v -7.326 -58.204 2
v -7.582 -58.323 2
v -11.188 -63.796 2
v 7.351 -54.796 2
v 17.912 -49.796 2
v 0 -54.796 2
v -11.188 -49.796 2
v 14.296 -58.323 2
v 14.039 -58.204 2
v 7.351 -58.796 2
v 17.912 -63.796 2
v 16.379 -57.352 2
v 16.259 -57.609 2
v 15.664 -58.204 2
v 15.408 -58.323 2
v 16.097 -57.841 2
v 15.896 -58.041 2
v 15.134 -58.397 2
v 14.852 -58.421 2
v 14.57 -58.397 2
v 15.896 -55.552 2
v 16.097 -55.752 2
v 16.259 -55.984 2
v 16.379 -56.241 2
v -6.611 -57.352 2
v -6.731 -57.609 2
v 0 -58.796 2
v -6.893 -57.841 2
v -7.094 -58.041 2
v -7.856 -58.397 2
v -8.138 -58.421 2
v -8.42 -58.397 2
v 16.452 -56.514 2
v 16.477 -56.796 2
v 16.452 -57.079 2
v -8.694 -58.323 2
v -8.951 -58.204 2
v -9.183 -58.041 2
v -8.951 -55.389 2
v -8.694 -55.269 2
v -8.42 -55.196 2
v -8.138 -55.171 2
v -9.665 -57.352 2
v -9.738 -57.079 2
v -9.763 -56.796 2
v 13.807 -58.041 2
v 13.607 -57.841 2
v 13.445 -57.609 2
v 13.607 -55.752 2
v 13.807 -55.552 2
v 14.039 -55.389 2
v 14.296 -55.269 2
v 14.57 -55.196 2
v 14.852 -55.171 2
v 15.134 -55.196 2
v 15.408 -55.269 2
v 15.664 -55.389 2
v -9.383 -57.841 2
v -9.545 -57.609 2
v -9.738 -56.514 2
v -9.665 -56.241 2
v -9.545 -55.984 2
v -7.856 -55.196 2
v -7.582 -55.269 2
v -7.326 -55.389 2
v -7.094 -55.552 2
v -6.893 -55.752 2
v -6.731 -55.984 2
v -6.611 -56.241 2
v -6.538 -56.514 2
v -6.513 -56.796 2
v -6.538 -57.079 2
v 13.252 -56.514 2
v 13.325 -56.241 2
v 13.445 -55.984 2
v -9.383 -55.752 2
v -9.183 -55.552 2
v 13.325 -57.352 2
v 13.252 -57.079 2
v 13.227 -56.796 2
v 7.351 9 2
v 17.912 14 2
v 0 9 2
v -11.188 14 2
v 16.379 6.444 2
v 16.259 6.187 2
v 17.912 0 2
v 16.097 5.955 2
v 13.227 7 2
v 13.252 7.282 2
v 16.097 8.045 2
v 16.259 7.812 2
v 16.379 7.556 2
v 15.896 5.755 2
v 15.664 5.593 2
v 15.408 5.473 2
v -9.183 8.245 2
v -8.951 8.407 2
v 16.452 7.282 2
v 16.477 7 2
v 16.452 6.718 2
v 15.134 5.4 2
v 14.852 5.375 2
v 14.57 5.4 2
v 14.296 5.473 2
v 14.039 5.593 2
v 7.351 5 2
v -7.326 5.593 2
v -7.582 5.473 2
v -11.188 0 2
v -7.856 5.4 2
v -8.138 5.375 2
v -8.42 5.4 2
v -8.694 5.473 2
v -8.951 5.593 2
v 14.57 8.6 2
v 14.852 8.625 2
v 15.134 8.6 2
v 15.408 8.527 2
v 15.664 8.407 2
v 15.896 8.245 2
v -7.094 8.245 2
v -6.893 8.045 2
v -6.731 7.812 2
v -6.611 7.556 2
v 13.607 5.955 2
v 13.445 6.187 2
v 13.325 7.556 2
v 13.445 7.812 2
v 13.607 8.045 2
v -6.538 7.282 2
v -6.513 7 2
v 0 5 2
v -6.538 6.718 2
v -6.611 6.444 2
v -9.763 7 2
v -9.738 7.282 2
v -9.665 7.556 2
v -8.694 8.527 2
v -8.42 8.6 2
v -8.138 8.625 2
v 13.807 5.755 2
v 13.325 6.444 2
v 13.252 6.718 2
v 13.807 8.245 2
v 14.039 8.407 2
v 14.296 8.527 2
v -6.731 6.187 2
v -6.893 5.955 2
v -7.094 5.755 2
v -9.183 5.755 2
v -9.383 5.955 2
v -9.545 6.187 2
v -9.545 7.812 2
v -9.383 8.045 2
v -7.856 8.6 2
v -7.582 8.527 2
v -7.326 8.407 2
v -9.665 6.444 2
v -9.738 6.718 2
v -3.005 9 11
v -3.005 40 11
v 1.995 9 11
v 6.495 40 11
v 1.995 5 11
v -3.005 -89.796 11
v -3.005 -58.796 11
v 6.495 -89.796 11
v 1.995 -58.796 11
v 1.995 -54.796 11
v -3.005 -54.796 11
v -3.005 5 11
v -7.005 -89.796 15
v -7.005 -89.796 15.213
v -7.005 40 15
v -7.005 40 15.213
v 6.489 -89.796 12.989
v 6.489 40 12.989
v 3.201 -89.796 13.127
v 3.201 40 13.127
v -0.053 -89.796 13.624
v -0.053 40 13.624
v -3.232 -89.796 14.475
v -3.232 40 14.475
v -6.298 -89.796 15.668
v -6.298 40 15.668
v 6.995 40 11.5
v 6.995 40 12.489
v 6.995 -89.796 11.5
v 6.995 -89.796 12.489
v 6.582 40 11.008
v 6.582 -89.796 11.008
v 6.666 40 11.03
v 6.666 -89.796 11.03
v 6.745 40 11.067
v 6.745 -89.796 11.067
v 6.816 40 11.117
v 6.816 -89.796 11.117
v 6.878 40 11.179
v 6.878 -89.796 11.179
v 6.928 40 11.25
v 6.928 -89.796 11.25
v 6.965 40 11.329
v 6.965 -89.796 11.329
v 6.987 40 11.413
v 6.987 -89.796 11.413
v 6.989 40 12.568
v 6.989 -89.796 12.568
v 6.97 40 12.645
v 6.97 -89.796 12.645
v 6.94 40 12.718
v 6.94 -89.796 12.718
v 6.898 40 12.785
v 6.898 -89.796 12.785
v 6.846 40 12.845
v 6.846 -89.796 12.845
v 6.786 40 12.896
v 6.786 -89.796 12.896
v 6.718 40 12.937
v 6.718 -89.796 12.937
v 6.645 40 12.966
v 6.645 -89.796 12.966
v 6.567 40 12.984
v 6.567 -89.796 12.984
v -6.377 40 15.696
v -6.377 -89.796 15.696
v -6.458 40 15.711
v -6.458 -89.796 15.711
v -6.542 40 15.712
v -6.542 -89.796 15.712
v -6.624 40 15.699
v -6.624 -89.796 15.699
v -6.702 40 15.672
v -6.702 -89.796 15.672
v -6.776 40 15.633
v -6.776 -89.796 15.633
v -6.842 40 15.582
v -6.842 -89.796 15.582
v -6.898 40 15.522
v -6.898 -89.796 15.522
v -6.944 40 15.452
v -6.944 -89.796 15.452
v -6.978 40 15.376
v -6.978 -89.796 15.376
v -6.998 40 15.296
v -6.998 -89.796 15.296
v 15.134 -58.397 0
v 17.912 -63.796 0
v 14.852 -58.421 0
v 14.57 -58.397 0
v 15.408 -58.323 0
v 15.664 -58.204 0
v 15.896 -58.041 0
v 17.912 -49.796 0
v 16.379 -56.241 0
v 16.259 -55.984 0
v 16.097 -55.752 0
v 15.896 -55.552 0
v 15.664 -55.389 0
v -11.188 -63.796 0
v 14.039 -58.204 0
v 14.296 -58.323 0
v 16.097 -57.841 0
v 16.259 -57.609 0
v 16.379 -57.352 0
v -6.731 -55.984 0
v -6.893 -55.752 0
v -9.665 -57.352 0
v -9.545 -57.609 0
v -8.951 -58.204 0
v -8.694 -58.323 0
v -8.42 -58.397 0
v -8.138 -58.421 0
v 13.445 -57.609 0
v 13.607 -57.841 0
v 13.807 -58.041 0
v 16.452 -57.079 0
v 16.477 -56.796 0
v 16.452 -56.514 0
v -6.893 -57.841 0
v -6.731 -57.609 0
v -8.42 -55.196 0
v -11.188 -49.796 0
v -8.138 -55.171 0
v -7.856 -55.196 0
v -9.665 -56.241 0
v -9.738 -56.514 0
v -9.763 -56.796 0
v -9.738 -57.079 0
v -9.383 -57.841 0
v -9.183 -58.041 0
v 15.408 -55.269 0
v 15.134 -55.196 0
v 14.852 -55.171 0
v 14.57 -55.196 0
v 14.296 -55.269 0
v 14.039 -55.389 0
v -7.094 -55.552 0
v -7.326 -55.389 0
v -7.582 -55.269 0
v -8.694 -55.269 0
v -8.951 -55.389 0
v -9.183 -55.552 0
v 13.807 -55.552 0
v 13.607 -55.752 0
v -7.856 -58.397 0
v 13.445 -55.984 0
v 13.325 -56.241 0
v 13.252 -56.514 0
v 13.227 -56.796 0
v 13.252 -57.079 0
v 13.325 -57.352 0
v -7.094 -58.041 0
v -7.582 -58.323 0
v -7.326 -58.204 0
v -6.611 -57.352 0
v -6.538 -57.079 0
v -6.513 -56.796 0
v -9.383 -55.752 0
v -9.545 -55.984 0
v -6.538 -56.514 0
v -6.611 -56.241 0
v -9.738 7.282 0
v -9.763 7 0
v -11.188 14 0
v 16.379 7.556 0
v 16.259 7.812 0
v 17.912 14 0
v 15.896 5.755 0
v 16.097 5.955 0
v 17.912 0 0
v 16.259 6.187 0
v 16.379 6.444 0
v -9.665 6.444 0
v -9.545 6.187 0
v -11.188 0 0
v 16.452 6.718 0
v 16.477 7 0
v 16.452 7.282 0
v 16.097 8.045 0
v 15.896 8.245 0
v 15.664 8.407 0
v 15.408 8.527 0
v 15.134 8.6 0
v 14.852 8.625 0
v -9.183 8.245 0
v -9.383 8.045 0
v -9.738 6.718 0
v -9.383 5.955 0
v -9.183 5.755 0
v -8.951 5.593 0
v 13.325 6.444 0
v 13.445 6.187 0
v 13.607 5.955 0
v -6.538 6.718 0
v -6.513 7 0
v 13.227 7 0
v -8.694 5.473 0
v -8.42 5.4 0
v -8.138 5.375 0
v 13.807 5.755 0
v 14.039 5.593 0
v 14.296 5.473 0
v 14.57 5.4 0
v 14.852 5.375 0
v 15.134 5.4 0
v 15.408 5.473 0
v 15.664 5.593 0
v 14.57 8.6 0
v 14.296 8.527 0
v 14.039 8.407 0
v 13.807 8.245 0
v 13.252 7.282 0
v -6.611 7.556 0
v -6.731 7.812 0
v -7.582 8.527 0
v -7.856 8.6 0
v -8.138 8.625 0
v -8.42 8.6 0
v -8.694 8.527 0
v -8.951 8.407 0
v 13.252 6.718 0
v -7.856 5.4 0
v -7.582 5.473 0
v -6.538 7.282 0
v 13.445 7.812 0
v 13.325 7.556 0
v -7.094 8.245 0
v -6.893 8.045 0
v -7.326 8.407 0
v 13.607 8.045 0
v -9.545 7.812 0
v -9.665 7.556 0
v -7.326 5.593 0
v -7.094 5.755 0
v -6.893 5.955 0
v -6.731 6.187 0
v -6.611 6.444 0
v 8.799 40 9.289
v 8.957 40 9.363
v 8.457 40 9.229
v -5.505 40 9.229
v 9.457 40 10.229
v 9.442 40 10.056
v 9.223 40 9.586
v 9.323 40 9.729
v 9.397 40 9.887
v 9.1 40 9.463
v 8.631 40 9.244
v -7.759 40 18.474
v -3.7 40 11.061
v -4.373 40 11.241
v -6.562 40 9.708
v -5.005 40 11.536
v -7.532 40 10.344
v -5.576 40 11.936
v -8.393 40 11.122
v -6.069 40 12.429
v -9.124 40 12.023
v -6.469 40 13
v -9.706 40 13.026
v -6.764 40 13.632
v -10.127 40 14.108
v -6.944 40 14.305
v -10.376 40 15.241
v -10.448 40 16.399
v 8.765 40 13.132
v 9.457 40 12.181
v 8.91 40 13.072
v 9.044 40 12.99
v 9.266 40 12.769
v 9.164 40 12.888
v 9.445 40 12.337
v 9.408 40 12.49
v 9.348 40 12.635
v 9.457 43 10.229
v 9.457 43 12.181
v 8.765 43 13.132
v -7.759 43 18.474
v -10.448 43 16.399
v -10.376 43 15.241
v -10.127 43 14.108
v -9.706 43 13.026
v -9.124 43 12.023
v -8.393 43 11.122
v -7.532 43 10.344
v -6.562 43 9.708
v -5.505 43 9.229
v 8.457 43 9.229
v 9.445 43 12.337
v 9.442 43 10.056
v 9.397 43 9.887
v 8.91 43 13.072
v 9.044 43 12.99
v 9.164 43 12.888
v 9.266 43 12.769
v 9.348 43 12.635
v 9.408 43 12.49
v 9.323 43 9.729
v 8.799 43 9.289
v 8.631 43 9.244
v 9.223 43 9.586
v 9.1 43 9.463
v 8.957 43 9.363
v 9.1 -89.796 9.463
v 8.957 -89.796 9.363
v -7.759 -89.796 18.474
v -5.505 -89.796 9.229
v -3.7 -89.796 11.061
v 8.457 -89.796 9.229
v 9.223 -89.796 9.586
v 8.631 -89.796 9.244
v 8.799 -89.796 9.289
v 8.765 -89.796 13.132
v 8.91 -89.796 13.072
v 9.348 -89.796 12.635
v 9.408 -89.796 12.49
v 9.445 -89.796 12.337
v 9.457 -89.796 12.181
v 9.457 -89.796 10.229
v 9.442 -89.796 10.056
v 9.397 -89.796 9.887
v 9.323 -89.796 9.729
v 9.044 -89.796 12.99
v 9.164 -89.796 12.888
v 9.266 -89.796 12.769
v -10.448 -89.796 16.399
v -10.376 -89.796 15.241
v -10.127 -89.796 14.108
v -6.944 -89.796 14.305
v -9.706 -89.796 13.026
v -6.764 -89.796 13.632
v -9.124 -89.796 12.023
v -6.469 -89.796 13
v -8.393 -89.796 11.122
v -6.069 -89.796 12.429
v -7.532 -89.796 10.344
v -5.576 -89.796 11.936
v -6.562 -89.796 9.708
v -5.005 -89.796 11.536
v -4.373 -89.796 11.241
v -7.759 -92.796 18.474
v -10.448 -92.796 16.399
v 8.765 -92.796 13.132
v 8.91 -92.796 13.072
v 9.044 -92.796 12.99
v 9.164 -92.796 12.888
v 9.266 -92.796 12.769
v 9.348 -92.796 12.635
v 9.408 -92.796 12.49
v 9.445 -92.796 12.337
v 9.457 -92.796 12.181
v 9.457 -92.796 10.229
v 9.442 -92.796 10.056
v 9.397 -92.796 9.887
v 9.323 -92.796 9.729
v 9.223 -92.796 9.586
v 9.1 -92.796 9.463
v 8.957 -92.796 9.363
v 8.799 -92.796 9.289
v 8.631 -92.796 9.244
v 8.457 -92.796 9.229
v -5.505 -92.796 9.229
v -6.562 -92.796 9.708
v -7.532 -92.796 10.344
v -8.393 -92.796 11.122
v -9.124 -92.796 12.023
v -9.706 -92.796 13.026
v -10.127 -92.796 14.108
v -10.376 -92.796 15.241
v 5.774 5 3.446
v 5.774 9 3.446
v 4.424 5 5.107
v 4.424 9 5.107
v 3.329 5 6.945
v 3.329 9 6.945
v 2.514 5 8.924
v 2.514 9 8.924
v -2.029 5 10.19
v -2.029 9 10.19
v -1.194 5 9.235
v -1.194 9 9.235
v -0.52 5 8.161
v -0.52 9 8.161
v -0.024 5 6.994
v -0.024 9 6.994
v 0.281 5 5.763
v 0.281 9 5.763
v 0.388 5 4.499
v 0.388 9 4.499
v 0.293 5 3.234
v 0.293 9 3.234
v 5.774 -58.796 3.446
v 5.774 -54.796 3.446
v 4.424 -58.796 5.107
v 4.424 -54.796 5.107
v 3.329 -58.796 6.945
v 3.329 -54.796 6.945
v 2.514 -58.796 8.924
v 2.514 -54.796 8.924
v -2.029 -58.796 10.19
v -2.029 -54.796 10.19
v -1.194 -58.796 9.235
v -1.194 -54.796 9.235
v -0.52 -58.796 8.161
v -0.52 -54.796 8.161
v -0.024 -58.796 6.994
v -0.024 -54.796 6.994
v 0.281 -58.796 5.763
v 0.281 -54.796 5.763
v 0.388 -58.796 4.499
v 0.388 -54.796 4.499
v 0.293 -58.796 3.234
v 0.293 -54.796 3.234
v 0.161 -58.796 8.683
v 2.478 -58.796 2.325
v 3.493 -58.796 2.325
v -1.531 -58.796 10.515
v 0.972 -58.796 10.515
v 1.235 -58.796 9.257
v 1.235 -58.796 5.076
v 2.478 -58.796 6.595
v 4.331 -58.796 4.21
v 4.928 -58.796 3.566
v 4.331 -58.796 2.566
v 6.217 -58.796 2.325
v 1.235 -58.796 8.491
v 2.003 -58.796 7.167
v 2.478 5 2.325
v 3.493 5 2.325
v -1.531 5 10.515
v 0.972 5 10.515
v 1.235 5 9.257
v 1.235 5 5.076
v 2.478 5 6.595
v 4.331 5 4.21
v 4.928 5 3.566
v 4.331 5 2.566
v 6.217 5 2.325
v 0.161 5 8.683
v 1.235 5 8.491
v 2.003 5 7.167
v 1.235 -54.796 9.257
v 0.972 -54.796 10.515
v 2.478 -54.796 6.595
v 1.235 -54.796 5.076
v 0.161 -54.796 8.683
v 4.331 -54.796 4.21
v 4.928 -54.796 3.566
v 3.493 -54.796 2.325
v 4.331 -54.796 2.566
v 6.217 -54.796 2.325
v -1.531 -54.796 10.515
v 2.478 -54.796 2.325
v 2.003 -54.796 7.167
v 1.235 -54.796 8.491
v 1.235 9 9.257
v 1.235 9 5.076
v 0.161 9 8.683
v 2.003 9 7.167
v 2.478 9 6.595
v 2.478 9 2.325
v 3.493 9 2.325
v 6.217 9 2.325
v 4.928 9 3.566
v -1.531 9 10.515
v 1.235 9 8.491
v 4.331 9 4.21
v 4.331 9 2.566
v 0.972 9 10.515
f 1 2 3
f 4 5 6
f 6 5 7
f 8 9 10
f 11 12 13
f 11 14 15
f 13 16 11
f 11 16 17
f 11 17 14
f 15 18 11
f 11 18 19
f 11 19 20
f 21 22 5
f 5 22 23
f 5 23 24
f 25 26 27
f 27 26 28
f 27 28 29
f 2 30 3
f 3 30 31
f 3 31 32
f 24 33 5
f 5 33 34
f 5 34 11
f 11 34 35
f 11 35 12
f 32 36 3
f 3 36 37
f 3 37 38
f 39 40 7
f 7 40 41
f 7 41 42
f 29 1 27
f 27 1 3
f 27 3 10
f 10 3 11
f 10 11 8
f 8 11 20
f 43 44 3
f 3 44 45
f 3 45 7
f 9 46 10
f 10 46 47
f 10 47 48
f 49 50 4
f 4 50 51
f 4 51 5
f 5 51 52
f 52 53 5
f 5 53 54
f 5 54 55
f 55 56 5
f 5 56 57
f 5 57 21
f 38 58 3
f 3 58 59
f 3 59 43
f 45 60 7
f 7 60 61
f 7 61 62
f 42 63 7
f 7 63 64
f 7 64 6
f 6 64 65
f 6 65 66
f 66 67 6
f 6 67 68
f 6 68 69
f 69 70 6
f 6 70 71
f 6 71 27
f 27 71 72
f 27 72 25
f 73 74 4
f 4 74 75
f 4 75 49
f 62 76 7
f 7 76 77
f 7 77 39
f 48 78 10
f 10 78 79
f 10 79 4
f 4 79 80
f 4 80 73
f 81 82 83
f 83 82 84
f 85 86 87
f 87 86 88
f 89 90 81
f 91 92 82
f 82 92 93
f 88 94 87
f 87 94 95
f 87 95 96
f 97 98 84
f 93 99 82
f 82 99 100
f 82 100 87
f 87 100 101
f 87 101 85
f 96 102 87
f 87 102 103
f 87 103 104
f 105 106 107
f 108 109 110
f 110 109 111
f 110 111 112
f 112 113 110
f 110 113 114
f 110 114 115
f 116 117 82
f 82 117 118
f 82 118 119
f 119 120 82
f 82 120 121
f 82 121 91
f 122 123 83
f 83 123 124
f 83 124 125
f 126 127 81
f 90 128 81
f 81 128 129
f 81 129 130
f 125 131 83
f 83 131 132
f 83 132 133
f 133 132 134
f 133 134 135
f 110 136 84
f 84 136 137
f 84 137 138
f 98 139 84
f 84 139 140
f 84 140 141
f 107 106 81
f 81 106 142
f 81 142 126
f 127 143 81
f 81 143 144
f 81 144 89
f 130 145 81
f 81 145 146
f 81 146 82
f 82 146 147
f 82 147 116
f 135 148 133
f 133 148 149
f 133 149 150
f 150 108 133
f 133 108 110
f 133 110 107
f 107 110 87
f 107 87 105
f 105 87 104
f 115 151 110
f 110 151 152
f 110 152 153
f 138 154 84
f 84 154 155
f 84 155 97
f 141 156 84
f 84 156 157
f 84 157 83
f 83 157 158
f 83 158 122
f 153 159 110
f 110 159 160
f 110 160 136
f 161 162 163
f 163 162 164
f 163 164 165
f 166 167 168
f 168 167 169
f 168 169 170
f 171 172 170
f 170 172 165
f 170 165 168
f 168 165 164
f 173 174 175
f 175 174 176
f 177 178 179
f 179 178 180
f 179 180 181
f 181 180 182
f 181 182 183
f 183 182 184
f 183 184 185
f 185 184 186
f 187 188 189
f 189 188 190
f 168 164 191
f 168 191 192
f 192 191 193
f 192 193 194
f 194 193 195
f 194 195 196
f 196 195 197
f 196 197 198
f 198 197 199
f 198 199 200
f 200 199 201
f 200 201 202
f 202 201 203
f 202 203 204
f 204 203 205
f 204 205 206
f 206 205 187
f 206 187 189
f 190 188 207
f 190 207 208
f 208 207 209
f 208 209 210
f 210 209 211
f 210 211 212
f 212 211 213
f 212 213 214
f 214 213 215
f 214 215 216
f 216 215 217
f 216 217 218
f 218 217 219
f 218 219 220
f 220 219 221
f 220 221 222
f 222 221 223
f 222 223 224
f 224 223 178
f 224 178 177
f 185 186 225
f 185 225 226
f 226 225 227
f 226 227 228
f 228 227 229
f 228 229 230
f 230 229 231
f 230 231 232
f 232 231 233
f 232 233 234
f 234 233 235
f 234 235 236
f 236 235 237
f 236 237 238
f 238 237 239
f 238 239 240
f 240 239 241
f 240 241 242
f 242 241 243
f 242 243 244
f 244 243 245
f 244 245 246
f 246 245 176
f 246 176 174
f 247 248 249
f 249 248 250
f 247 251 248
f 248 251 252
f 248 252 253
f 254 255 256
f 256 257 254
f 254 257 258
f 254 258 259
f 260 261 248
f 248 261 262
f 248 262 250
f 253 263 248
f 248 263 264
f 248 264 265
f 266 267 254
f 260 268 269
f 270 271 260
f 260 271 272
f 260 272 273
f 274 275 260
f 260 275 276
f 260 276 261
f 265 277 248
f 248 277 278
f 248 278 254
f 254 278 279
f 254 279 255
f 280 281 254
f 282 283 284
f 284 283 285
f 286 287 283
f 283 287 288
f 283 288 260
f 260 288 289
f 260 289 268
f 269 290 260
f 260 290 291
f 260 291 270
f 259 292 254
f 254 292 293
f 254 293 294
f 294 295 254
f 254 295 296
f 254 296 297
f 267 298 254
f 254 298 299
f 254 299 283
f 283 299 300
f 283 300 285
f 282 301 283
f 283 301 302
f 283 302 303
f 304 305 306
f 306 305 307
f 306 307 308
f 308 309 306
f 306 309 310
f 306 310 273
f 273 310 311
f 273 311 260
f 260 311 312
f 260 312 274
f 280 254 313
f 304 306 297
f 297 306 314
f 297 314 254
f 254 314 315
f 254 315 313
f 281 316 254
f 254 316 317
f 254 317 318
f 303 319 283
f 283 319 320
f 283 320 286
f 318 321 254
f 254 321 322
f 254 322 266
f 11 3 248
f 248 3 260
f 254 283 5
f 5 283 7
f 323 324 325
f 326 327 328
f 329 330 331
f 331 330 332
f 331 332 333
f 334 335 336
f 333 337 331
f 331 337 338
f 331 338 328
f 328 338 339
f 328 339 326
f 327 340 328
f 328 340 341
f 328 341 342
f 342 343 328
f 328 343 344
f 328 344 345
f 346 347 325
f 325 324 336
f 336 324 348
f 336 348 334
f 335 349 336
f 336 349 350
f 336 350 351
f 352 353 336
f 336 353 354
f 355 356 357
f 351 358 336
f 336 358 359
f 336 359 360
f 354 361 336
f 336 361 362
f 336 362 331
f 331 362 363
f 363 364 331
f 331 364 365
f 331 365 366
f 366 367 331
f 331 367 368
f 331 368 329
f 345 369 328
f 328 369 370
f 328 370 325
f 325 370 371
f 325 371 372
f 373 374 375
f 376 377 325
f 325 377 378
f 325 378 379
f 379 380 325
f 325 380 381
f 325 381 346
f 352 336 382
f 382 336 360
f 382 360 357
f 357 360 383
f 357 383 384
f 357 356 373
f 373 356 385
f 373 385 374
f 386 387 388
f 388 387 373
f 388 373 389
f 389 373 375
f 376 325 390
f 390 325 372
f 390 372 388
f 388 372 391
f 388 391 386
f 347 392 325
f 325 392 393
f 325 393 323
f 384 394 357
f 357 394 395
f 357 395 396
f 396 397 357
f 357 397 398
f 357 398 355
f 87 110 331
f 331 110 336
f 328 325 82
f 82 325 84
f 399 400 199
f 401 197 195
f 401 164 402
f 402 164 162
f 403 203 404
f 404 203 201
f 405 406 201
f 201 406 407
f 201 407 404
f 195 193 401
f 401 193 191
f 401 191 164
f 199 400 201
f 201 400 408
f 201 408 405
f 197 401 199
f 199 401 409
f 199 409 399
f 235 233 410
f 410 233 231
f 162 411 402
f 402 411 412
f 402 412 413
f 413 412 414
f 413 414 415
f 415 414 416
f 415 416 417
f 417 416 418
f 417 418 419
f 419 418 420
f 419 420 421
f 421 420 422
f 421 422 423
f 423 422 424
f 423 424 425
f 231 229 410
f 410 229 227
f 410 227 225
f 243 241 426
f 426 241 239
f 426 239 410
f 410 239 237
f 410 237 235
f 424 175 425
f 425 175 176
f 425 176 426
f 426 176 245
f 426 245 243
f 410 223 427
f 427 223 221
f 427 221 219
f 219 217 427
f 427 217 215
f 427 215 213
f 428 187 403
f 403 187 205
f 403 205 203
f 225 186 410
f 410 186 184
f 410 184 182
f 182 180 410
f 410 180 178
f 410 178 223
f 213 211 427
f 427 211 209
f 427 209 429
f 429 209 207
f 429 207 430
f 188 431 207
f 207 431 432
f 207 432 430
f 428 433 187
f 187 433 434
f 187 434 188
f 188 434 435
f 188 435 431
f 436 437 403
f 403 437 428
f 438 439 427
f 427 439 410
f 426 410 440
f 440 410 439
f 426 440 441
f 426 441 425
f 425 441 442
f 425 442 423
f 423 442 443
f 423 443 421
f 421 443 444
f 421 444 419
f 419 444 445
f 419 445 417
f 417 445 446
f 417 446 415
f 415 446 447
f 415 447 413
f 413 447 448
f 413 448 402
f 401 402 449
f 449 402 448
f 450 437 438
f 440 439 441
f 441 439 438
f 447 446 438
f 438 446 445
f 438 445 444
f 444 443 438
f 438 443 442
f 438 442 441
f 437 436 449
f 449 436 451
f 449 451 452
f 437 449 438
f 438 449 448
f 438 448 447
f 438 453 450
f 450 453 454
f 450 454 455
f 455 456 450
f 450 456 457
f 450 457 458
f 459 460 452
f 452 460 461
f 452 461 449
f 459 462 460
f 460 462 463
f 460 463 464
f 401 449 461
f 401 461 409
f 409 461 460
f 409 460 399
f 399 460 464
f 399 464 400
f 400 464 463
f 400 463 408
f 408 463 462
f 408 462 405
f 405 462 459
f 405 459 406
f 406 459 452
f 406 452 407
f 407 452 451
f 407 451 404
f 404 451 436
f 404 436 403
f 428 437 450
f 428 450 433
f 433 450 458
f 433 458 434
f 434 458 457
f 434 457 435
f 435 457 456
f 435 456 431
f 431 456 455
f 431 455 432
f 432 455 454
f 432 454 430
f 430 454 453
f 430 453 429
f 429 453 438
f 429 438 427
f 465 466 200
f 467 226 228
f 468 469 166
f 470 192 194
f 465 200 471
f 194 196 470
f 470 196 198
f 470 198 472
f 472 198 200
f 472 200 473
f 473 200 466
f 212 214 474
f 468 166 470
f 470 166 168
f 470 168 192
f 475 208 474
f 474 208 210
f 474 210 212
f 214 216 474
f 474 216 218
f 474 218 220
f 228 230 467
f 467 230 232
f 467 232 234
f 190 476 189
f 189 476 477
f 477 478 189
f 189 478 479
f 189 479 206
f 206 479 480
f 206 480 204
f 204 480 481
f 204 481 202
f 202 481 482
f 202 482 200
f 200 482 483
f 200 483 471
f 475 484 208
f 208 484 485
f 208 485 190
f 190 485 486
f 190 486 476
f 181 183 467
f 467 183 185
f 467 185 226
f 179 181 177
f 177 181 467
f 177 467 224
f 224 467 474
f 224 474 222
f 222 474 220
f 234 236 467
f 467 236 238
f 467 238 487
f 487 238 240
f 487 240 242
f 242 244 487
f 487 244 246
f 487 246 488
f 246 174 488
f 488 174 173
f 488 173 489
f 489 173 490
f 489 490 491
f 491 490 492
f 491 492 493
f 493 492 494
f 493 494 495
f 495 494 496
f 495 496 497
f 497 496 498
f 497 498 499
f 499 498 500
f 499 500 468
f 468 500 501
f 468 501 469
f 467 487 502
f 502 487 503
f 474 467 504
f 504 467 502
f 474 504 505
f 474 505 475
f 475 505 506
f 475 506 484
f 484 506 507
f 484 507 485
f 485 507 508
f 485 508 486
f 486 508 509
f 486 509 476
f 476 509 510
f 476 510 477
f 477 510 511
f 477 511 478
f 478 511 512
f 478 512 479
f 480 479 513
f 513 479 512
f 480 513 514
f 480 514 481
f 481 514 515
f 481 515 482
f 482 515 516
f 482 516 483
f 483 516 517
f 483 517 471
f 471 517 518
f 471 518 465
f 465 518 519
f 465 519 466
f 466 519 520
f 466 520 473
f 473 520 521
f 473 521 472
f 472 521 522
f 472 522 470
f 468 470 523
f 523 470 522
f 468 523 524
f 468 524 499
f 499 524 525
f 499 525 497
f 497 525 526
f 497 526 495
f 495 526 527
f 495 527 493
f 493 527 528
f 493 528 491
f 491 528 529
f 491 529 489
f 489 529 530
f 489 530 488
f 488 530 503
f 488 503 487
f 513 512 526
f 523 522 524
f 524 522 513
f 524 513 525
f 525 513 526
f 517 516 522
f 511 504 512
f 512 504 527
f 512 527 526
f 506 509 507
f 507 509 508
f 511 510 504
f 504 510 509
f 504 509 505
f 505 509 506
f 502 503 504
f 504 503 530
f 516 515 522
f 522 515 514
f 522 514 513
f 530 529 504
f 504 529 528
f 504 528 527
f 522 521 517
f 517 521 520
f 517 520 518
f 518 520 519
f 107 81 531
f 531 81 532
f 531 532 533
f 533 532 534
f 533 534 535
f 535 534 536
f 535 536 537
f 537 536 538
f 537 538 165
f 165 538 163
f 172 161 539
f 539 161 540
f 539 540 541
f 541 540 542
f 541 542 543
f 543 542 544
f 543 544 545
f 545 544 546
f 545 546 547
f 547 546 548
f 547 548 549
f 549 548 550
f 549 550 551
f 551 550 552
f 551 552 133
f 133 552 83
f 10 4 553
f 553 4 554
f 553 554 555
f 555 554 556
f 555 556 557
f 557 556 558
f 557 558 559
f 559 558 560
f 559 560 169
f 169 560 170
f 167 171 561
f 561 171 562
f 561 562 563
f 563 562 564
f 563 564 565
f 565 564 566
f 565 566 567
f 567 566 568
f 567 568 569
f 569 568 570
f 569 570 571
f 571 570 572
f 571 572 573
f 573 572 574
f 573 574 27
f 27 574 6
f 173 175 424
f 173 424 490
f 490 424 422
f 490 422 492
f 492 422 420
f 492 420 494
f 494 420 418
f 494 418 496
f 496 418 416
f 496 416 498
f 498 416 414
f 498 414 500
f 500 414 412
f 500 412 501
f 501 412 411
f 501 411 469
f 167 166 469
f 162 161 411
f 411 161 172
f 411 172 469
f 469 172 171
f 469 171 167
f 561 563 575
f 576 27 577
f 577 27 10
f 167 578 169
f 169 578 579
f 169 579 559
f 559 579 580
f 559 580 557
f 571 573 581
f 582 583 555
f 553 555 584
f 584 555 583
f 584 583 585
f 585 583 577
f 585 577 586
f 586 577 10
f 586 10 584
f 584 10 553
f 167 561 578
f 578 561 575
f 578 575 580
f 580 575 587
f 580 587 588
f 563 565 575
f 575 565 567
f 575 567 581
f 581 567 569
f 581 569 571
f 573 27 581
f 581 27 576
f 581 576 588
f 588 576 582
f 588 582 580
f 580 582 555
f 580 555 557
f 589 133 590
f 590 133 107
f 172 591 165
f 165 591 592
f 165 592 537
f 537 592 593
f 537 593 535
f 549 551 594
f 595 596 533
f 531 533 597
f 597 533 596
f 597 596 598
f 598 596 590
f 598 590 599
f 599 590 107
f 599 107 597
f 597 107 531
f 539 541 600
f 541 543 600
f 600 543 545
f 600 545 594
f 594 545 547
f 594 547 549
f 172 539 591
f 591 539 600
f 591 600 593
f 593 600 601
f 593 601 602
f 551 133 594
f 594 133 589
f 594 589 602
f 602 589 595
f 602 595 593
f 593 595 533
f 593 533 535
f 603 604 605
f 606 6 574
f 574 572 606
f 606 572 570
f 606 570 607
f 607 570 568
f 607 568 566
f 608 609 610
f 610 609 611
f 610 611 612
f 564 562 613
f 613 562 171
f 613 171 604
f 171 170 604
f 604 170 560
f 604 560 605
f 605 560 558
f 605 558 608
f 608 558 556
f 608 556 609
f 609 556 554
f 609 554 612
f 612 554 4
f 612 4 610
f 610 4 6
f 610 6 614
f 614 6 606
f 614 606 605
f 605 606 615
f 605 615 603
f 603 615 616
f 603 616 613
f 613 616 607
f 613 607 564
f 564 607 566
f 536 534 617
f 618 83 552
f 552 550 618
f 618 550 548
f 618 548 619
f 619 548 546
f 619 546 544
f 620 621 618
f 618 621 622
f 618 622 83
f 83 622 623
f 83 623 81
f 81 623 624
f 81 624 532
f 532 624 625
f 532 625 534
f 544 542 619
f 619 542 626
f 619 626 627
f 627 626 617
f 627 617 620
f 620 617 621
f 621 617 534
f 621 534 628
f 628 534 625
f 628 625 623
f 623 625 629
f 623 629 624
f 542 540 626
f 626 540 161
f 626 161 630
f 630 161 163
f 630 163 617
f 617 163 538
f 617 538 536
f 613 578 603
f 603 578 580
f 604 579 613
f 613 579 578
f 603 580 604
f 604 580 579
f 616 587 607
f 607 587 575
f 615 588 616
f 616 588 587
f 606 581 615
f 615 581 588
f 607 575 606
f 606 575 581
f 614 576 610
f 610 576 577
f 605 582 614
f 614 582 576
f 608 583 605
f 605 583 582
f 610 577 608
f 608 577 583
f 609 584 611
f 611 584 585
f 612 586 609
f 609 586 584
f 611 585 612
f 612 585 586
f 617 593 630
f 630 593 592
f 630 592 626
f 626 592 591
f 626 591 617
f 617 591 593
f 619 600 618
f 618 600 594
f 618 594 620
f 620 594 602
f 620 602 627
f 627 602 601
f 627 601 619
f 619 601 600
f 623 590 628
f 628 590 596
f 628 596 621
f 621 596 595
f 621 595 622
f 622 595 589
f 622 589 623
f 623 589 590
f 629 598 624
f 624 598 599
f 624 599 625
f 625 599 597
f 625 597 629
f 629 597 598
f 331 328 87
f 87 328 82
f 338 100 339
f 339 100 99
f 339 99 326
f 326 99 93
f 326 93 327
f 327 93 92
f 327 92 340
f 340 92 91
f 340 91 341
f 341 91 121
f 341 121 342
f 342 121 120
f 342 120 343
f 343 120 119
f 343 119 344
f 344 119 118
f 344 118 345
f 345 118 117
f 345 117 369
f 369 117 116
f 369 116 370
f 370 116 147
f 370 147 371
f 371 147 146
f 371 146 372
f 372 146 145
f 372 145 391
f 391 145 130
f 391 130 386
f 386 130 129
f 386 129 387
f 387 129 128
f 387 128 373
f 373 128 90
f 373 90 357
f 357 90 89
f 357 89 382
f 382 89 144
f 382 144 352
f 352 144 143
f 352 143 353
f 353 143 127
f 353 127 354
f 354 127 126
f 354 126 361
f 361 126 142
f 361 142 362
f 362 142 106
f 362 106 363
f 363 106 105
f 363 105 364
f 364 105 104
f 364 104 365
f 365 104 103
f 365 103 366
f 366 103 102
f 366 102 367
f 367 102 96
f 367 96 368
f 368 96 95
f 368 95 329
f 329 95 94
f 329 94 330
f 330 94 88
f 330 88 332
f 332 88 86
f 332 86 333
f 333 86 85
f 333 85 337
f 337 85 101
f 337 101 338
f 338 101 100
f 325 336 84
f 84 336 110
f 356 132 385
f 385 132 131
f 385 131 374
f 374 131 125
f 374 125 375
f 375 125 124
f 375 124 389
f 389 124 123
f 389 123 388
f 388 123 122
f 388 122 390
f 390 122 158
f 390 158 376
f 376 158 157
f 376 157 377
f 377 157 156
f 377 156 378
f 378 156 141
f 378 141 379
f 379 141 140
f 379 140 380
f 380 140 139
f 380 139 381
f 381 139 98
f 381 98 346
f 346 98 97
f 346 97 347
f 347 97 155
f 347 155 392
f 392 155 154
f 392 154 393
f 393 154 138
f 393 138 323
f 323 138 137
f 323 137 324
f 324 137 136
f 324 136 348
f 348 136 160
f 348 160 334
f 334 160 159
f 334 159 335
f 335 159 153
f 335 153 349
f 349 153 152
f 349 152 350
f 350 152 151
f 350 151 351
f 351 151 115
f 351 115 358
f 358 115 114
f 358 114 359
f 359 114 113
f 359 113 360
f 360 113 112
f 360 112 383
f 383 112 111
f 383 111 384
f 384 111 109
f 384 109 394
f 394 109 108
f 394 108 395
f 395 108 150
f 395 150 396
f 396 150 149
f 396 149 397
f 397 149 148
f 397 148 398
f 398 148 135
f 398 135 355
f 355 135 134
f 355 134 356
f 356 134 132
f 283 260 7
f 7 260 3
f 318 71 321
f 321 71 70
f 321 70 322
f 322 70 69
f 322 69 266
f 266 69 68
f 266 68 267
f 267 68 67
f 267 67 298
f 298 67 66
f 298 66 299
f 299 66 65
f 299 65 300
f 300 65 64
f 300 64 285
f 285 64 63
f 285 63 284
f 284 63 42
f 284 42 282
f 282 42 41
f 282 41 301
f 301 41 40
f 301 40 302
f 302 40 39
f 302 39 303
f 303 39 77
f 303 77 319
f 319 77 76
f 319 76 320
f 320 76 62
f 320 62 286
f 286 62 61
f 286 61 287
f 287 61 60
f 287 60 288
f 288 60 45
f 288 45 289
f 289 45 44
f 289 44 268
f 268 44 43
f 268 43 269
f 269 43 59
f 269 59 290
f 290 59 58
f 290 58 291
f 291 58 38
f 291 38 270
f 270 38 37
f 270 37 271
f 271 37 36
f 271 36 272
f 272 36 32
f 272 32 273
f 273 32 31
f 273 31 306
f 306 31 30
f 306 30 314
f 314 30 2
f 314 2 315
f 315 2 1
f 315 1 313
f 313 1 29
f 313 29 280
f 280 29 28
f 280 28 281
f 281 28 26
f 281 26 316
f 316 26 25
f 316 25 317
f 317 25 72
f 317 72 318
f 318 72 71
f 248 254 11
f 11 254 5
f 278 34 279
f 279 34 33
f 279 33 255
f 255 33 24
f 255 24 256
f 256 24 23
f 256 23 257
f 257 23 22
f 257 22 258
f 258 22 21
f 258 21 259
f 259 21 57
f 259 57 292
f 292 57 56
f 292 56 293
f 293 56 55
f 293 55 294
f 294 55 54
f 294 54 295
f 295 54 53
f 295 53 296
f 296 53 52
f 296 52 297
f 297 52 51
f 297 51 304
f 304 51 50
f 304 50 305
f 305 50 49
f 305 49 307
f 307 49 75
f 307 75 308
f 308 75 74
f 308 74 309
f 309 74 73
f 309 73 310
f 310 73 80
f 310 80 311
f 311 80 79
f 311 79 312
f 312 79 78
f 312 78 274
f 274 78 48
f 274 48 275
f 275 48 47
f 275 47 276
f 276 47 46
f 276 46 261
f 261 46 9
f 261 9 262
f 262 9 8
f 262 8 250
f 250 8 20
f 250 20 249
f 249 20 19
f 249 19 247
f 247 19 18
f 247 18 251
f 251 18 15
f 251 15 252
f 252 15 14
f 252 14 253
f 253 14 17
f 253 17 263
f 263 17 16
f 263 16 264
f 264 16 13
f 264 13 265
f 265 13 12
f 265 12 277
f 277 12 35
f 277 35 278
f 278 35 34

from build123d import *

# Parameters (mm, degrees)
CROQUIS1_W                = 29.1
CROQUIS1_H                = 14
CROQUIS1_R                = 1.625
SALIENTE_EXTRUIR1_DEPTH   = 2
SALIENTE_EXTRUIR1_2_DEPTH = 2
CROQUIS2_W                = 8
CROQUIS2_H                = 8
SALIENTE_EXTRUIR2_DEPTH   = 7
CROQUIS3_W                = 28
CROQUIS3_H                = 135.79635
SALIENTE_EXTRUIR3_DEPTH   = 8
CORTAR_EXTRUIR1_START     = -135.79635
CORTAR_EXTRUIR1_DEPTH     = 135.79635
REDONDEO1_R               = 0.5
REDONDEO2_R               = 0.5
CROQUIS5_W                = 2
CROQUIS5_H                = 32
CROQUIS5_H_2              = 55.79635
CORTAR_EXTRUIR2_DEPTH     = 8
SALIENTE_EXTRUIR4_DEPTH   = 3
REDONDEO4_R               = 1
SALIENTE_EXTRUIR5_DEPTH   = 3
CORTAR_EXTRUIR4_START     = -71.79635
CORTAR_EXTRUIR4_DEPTH     = 71.79635
SALIENTE_EXTRUIR7_START   = -8
SALIENTE_EXTRUIR7_DEPTH   = 8
SALIENTE_EXTRUIR8_START   = -8
SALIENTE_EXTRUIR8_DEPTH   = 8
CORTAR_EXTRUIR5_START     = -71.79635
CORTAR_EXTRUIR5_DEPTH     = 71.79635
REDONDEO5_R               = 4
CORTAR_EXTRUIR6_START     = -21.901142
CROQUIS15_W               = 9
CROQUIS15_H               = 2
CORTAR_EXTRUIR6_DEPTH     = 14.356142
CORTAR_EXTRUIR7_START     = -103.79635
CROQUIS16_W               = 5.770605939
CROQUIS16_H               = 2
CROQUIS16_W_2             = 12.752116736
CORTAR_EXTRUIR7_DEPTH     = 129.79635
CROQUIS17_W               = 9.132432918
CROQUIS17_H               = 14
CROQUIS17_R               = 1.625
CROQUIS17_W_2             = 9.390289757
SALIENTE_EXTRUIR9_DEPTH   = 2


with BuildPart() as part:
    # Croquis1 → Saliente-Extruir1 (new body)
    with BuildSketch(Plane.XY):
        with Locations((0, -56.79635)):
            Rectangle(CROQUIS1_W, CROQUIS1_H)
        with Locations((11.49, -56.79635)):
            Circle(CROQUIS1_R, mode=Mode.SUBTRACT)
        with Locations((-11.5, -56.79635)):
            Circle(CROQUIS1_R, mode=Mode.SUBTRACT)
    extrude(amount=SALIENTE_EXTRUIR1_DEPTH)



with BuildPart() as body_2:
    # Croquis1 → Saliente-Extruir1 2 (new body)
    with BuildSketch(Plane.XY):
        with Locations((0, 7)):
            Rectangle(CROQUIS1_W, CROQUIS1_H)
        with Locations((-11.5, 7)):
            Circle(CROQUIS1_R, mode=Mode.SUBTRACT)
        with Locations((11.49, 7)):
            Circle(CROQUIS1_R, mode=Mode.SUBTRACT)
    extrude(amount=SALIENTE_EXTRUIR1_2_DEPTH)


with BuildPart() as part_1:
    add(part.part)

    add(body_2.part)  # Saliente-Extruir2 merges body 2
    # Croquis2 → Saliente-Extruir2 (add)
    with BuildSketch(Plane.XY.offset(2)):
        with Locations((-0.005, 7)):
            Rectangle(CROQUIS2_W, CROQUIS2_H)
        with Locations((-0.005, -56.79635)):
            Rectangle(CROQUIS2_W, CROQUIS2_H)
    extrude(amount=SALIENTE_EXTRUIR2_DEPTH)

    # Croquis3 → Saliente-Extruir3 (add)
    with BuildSketch(Plane.XY.offset(9)):
        with Locations((-0.005, -24.898175)):
            Rectangle(CROQUIS3_W, CROQUIS3_H)
    extrude(amount=SALIENTE_EXTRUIR3_DEPTH)

    # Croquis4 → Cortar-Extruir1 (cut)
    with BuildSketch(Plane(origin=(0, 43, 0), x_dir=(1, 0, 0), z_dir=(0, 1, 0)).offset(CORTAR_EXTRUIR1_START)):
        with BuildLine():
            Line((3.995, -9), (3.995, -11))
            Line((3.995, -11), (6.995, -11))
            Line((6.995, -11), (6.995, -13))
            ThreePointArc((6.995, -13), (-0.186595872, -13.652552595), (-7.005, -16))
            Line((-7.005, -16), (-7.005, -13))
            Line((-7.005, -13), (-7.005, -11))
            Line((-7.005, -11), (-4.005, -11))
            Line((-4.005, -11), (-4.005, -9))
            Line((-4.005, -9), (-14.005, -9))
            Line((-14.005, -9), (-14.005, -17))
            Line((-14.005, -17), (13.995, -17))
            Line((13.995, -17), (13.995, -9))
            Line((13.995, -9), (3.995, -9))
        make_face()
    extrude(amount=CORTAR_EXTRUIR1_DEPTH, mode=Mode.SUBTRACT)

    # Redondeo1
    redondeo1_edges = [part_1.edges().sort_by_distance(p)[0] for p in [
        (6.995, -24.898175, 13),
        (6.995, -24.898175, 11),
    ]]
    fillet(redondeo1_edges, radius=REDONDEO1_R)

    # Redondeo2
    redondeo2_edges = [part_1.edges().sort_by_distance(p)[0] for p in [
        (-7.005, -24.898175, 16),
    ]]
    fillet(redondeo2_edges, radius=REDONDEO2_R)

    # Croquis5 → Cortar-Extruir2 (cut)
    with BuildSketch(Plane.ZY.offset(4.005)):
        with Locations((10, 27)):
            Rectangle(CROQUIS5_W, CROQUIS5_H)
        with Locations((10, -24.898175)):
            Rectangle(CROQUIS5_W, CROQUIS5_H_2)
        with Locations((10, -76.79635)):
            Rectangle(CROQUIS5_W, CROQUIS5_H)
    extrude(amount=-CORTAR_EXTRUIR2_DEPTH, mode=Mode.SUBTRACT)

    # Croquis6 → Saliente-Extruir4 (add)
    with BuildSketch(Plane(origin=(0, 43, 0), x_dir=(1, 0, 0), z_dir=(0, 1, 0))):
        with BuildLine():
            Line((9.457278185, -12.908301876), (-7.759178779, -18.474170155))
            Line((-7.759178779, -18.474170155), (-10.447776168, -16.398761645))
            ThreePointArc((-10.447776168, -16.398761645), (-9.123523754, -12.023120399), (-5.505, -9.229168607))
            Line((-5.505, -9.229168607), (9.457278185, -9.229168607))
            Line((9.457278185, -9.229168607), (9.457278185, -12.908301876))
        make_face()
    extrude(amount=-SALIENTE_EXTRUIR4_DEPTH)

    # Redondeo4
    redondeo4_edges = [part_1.edges().sort_by_distance(p)[0] for p in [
        (9.457278185, 41.5, 9.229168607),
        (9.457278185, 41.5, 12.908301876),
    ]]
    fillet(redondeo4_edges, radius=REDONDEO4_R)

    # Croquis7 → Saliente-Extruir5 (add)
    with BuildSketch(Plane.XZ.offset(92.79635)):
        with BuildLine():
            Line((-7.759178779, 18.474170155), (8.76489024, 13.132142363))
            ThreePointArc((8.76489024, 13.132142363), (9.265860913, 12.769013006), (9.457278185, 12.180630501))
            Line((9.457278185, 12.180630501), (9.457278185, 10.229168607))
            ThreePointArc((9.457278185, 10.229168607), (9.164384967, 9.522061826), (8.457278185, 9.229168607))
            Line((8.457278185, 9.229168607), (-5.505, 9.229168607))
            ThreePointArc((-5.505, 9.229168607), (-9.123523754, 12.023120399), (-10.447776168, 16.398761645))
            Line((-10.447776168, 16.398761645), (-7.759178779, 18.474170155))
        make_face()
    extrude(amount=-SALIENTE_EXTRUIR5_DEPTH)

    # Croquis11 → Cortar-Extruir4 (cut)
    with BuildSketch(Plane(origin=(0, 11, 0), x_dir=(1, 0, 0), z_dir=(0, 1, 0)).offset(CORTAR_EXTRUIR4_START)):
        with BuildLine():
            Line((-4.005, -11), (-3.005, -11))
            ThreePointArc((-3.005, -11), (-0.024192095, -6.993590584), (0, -2))
            Line((0, -2), (-4.005, -2))
            Line((-4.005, -2), (-4.005, -11))
        make_face()
        with BuildLine():
            Line((3.995, -11), (1.995, -11))
            ThreePointArc((1.995, -11), (2.742037907, -8.281661906), (3.995, -5.756287949))
            Line((3.995, -5.756287949), (3.995, -11))
        make_face()
    extrude(amount=CORTAR_EXTRUIR4_DEPTH, mode=Mode.SUBTRACT)

    # Croquis12 → Saliente-Extruir7 (add)
    with BuildSketch(Plane(origin=(0, 11, 0), x_dir=(1, 0, 0), z_dir=(0, 1, 0)).offset(SALIENTE_EXTRUIR7_START)):
        with BuildLine():
            Line((3.995, -2), (7.351142184, -2))
            ThreePointArc((7.351142184, -2), (5.510724817, -3.733091947), (3.995, -5.756287949))
            Line((3.995, -5.756287949), (3.995, -2))
        make_face()
    extrude(amount=SALIENTE_EXTRUIR7_DEPTH)

    # Croquis13 → Saliente-Extruir8 (add)
    with BuildSketch(Plane.XZ.offset(60.79635).offset(SALIENTE_EXTRUIR8_START)):
        with BuildLine():
            Line((3.995, 5.756287949), (3.995, 2))
            Line((3.995, 2), (7.351142184, 2))
            ThreePointArc((7.351142184, 2), (5.510724817, 3.733091947), (3.995, 5.756287949))
        make_face()
    extrude(amount=SALIENTE_EXTRUIR8_DEPTH)

    # Croquis14 → Cortar-Extruir5 (cut)
    with BuildSketch(Plane(origin=(0, 11, 0), x_dir=(1, 0, 0), z_dir=(0, 1, 0)).offset(CORTAR_EXTRUIR5_START)):
        Polygon((6.21693803, -2.324666095), (4.927658189, -3.565597942), (4.331366262, -2.566406065), align=None)
        Polygon((3.493334365, -2.324666095), (2.47802649, -2.324666095), (2.47802649, -6.595405569), (4.331366262, -4.210237863), align=None)
        Polygon((1.235275319, -5.075942388), (2.002667058, -7.167084876), (1.235275319, -8.490835625), (0.160926885, -8.68268356), align=None)
        Polygon((0.97157316, -10.515246809), (-1.531379092, -10.515246809), (1.235275319, -9.257285848), align=None)
    extrude(amount=CORTAR_EXTRUIR5_DEPTH, mode=Mode.SUBTRACT)

    # Redondeo5
    redondeo5_edges = [part_1.edges().sort_by_distance(p)[0] for p in [
        (-7.005, -24.898175, 11),
    ]]
    fillet(redondeo5_edges, radius=REDONDEO5_R - 0.0001)  # a hair under: the kernel refuses the full size

    # Croquis15 → Cortar-Extruir6 (cut)
    with BuildSketch(Plane.ZY.offset(14.55).offset(CORTAR_EXTRUIR6_START)):
        with Locations((6.5, 10)):
            Rectangle(CROQUIS15_W, CROQUIS15_H)
        with Locations((6.5, 4)):
            Rectangle(CROQUIS15_W, CROQUIS15_H)
        with Locations((6.5, -53.79635)):
            Rectangle(CROQUIS15_W, CROQUIS15_H)
        with Locations((6.5, -59.79635)):
            Rectangle(CROQUIS15_W, CROQUIS15_H)
    extrude(amount=CORTAR_EXTRUIR6_DEPTH, mode=Mode.SUBTRACT)

    # Croquis16 → Cortar-Extruir7 (cut)
    with BuildSketch(Plane(origin=(0, 14, 0), x_dir=(1, 0, 0), z_dir=(0, 1, 0)).offset(CORTAR_EXTRUIR7_START)):
        with Locations((11.664697031, -1)):
            Rectangle(CROQUIS16_W, CROQUIS16_H)
        with Locations((-8.173941632, -1)):
            Rectangle(CROQUIS16_W_2, CROQUIS16_H)
    extrude(amount=CORTAR_EXTRUIR7_DEPTH, mode=Mode.SUBTRACT)

    # Croquis17 → Saliente-Extruir9 (add)
    # profile 1 of 4: a face of its own
    with BuildSketch(Plane.XY.offset(2)):
        with Locations((13.34561052, 7)):
            Rectangle(CROQUIS17_W, CROQUIS17_H)
        with Locations((14.851826979, 7)):
            Circle(CROQUIS17_R, mode=Mode.SUBTRACT)
    # profile 2 of 4: a face of its own
    with BuildSketch(Plane.XY.offset(2)):
        with Locations((-6.493028143, 7)):
            Rectangle(CROQUIS17_W_2, CROQUIS17_H)
        with Locations((-8.138173021, 7)):
            Circle(CROQUIS17_R, mode=Mode.SUBTRACT)
    # profile 3 of 4: a face of its own
    with BuildSketch(Plane.XY.offset(2)):
        with Locations((-6.493028143, -56.79635)):
            Rectangle(CROQUIS17_W_2, CROQUIS17_H)
        with Locations((-8.138173021, -56.79635)):
            Circle(CROQUIS17_R, mode=Mode.SUBTRACT)
    # profile 4 of 4: a face of its own
    with BuildSketch(Plane.XY.offset(2)):
        with Locations((13.34561052, -56.79635)):
            Rectangle(CROQUIS17_W, CROQUIS17_H)
        with Locations((14.851826979, -56.79635)):
            Circle(CROQUIS17_R, mode=Mode.SUBTRACT)
    extrude(amount=-SALIENTE_EXTRUIR9_DEPTH)


solid = part_1.part
